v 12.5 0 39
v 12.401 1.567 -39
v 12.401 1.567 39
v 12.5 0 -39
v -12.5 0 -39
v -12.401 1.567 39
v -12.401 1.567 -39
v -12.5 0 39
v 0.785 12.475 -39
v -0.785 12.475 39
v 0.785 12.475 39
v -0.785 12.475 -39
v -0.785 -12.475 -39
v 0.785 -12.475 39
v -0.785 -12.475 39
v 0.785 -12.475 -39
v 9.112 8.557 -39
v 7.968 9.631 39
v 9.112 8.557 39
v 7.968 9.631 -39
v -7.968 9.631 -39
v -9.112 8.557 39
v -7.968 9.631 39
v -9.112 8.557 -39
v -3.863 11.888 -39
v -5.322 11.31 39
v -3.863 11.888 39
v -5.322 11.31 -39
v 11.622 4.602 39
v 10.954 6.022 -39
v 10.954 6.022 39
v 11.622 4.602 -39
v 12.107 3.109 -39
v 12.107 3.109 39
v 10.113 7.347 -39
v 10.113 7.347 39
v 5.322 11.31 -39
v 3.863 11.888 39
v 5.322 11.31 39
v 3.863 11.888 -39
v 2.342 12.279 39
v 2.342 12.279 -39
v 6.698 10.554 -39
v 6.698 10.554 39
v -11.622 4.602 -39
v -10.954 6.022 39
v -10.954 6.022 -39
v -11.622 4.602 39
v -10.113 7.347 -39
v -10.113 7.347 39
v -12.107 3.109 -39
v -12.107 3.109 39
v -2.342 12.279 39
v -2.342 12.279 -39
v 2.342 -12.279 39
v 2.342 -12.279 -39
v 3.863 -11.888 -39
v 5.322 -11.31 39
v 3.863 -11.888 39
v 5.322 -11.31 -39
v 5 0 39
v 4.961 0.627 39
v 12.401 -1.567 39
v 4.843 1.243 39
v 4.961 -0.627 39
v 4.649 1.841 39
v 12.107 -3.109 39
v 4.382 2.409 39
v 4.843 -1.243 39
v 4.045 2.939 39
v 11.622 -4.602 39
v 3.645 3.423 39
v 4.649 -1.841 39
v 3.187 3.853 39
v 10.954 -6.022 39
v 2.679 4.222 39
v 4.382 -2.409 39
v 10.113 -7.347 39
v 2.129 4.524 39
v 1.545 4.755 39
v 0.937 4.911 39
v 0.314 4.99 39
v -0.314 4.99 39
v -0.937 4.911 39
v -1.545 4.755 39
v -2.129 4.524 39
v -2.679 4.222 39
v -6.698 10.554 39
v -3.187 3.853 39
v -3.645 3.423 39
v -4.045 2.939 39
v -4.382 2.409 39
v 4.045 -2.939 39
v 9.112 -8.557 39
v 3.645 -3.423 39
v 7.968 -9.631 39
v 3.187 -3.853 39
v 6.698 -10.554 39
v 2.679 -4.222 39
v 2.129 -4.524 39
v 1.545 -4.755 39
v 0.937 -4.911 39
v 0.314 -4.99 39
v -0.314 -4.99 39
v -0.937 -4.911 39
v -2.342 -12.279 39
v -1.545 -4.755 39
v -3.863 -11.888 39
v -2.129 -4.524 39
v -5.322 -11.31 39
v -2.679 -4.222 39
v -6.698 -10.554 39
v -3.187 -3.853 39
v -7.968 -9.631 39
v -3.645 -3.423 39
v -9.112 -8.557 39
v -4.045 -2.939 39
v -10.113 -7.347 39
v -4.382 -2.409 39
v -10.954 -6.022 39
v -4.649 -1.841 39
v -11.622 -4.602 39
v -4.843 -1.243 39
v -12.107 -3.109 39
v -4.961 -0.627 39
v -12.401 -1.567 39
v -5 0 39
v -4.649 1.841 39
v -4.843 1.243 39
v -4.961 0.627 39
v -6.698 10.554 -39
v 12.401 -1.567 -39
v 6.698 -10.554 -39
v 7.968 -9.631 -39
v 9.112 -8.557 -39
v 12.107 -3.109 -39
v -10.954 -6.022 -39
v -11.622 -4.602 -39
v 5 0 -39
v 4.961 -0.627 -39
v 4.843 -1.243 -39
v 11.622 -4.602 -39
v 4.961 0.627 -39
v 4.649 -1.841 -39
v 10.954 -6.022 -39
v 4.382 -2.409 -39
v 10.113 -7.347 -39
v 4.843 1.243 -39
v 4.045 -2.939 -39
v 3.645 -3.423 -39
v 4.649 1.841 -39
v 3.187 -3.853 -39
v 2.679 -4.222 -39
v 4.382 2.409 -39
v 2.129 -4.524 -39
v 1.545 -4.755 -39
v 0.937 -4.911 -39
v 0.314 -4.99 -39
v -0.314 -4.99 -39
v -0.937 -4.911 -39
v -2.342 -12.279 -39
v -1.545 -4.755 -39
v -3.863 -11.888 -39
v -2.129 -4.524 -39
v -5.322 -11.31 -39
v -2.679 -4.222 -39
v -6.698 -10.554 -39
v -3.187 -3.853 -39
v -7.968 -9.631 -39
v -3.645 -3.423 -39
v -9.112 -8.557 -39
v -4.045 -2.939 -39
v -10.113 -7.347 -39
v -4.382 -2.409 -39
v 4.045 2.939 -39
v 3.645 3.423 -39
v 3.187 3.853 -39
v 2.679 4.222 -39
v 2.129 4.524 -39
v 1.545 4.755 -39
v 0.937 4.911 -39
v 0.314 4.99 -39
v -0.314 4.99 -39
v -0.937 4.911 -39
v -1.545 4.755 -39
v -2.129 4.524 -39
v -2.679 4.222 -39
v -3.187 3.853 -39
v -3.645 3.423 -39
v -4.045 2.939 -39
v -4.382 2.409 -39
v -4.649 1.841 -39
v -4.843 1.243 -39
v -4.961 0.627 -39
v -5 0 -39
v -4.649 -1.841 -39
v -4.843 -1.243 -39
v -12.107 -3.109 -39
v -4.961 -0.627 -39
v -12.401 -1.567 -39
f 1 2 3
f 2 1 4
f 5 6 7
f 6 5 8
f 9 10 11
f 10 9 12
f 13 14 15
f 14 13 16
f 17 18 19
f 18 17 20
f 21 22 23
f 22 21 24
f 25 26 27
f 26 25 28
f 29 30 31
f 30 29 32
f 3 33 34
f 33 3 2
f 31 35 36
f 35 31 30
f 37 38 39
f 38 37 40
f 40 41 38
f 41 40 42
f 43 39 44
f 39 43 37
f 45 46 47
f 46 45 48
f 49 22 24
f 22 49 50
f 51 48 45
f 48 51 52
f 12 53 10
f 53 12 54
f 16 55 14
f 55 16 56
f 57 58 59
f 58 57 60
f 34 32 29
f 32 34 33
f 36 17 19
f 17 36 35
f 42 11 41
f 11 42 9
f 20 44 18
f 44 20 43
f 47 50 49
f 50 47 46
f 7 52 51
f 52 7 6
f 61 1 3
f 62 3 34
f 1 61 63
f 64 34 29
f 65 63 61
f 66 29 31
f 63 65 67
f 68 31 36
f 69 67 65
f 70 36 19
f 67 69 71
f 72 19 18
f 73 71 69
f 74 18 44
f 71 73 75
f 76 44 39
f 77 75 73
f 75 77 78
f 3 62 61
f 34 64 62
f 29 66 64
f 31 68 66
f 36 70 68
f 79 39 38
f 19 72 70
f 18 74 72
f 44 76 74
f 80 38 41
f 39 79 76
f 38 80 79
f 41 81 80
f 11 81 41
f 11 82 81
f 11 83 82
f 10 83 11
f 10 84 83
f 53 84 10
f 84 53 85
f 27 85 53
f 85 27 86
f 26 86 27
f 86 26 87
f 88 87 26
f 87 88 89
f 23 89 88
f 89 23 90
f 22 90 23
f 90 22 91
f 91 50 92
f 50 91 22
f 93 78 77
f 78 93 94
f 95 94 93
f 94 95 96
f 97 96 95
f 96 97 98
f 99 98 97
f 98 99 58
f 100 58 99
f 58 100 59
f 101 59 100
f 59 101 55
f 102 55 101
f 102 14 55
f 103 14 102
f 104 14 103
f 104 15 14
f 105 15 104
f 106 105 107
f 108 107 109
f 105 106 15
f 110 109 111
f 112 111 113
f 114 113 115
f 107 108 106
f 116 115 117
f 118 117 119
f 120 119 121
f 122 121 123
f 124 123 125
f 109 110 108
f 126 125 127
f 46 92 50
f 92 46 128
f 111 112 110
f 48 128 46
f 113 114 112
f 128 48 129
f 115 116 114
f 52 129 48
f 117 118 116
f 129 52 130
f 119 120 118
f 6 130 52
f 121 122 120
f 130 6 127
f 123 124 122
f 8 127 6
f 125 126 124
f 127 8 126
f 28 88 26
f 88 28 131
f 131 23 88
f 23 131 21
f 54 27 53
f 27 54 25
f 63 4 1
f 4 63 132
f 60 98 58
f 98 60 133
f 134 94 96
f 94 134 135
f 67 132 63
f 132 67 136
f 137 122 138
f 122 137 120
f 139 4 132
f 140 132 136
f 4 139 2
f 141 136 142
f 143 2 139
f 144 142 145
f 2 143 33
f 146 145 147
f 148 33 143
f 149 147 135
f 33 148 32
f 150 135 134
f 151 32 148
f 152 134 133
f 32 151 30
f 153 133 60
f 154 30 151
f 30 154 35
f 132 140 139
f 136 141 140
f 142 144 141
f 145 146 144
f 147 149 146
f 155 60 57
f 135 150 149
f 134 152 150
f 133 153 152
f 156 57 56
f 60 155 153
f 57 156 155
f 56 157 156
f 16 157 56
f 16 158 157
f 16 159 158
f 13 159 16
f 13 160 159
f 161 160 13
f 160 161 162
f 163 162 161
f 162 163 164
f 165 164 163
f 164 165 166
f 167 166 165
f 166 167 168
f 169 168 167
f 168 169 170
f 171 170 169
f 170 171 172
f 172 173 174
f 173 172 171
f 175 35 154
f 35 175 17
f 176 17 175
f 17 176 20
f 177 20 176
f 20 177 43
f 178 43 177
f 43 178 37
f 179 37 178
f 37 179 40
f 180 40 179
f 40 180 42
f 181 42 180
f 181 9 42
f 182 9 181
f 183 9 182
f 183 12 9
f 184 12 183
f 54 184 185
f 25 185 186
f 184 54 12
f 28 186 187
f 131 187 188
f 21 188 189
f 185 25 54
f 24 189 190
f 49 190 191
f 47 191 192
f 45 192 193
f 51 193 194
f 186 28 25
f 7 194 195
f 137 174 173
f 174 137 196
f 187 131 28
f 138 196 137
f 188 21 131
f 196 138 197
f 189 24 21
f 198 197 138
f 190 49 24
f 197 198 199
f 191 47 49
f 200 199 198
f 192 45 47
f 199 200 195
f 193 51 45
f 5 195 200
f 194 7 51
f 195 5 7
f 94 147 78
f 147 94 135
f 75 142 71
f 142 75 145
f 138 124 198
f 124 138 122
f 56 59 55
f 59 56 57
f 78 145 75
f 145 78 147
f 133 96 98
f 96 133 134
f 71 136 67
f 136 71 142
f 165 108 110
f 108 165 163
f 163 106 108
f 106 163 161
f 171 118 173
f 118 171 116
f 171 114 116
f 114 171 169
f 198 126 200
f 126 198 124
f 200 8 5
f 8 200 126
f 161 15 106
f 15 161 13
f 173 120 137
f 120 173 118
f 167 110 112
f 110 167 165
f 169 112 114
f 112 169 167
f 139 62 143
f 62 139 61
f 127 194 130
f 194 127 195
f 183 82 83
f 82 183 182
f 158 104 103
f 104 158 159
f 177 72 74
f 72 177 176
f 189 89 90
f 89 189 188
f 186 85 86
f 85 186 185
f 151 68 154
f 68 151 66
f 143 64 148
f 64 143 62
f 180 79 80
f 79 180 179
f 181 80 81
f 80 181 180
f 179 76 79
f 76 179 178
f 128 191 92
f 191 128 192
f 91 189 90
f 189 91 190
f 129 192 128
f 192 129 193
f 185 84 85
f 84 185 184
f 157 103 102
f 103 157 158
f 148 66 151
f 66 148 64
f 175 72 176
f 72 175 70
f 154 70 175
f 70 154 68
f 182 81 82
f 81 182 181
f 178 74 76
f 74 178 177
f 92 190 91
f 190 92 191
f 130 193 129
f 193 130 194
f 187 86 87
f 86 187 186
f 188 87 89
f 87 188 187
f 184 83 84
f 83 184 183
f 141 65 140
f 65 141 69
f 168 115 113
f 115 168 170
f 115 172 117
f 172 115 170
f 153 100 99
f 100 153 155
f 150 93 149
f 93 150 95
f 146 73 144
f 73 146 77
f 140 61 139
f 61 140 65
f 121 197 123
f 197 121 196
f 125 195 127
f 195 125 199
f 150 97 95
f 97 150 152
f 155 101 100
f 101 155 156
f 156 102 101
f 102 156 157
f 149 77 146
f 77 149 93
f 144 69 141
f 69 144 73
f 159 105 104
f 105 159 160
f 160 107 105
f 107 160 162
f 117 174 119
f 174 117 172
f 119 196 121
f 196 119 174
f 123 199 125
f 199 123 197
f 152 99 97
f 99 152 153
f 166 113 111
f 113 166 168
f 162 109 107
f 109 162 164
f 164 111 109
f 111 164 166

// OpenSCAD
$fn = 50;


difference() {
	union() {
		translate(v = [0, 0, -39.0000000000]) {
			cylinder(h = 78, r = 12.5000000000);
		}
	}
	union() {
		translate(v = [0, 0, -100.0000000000]) {
			cylinder(h = 200, r = 5);
		}
	}
}
